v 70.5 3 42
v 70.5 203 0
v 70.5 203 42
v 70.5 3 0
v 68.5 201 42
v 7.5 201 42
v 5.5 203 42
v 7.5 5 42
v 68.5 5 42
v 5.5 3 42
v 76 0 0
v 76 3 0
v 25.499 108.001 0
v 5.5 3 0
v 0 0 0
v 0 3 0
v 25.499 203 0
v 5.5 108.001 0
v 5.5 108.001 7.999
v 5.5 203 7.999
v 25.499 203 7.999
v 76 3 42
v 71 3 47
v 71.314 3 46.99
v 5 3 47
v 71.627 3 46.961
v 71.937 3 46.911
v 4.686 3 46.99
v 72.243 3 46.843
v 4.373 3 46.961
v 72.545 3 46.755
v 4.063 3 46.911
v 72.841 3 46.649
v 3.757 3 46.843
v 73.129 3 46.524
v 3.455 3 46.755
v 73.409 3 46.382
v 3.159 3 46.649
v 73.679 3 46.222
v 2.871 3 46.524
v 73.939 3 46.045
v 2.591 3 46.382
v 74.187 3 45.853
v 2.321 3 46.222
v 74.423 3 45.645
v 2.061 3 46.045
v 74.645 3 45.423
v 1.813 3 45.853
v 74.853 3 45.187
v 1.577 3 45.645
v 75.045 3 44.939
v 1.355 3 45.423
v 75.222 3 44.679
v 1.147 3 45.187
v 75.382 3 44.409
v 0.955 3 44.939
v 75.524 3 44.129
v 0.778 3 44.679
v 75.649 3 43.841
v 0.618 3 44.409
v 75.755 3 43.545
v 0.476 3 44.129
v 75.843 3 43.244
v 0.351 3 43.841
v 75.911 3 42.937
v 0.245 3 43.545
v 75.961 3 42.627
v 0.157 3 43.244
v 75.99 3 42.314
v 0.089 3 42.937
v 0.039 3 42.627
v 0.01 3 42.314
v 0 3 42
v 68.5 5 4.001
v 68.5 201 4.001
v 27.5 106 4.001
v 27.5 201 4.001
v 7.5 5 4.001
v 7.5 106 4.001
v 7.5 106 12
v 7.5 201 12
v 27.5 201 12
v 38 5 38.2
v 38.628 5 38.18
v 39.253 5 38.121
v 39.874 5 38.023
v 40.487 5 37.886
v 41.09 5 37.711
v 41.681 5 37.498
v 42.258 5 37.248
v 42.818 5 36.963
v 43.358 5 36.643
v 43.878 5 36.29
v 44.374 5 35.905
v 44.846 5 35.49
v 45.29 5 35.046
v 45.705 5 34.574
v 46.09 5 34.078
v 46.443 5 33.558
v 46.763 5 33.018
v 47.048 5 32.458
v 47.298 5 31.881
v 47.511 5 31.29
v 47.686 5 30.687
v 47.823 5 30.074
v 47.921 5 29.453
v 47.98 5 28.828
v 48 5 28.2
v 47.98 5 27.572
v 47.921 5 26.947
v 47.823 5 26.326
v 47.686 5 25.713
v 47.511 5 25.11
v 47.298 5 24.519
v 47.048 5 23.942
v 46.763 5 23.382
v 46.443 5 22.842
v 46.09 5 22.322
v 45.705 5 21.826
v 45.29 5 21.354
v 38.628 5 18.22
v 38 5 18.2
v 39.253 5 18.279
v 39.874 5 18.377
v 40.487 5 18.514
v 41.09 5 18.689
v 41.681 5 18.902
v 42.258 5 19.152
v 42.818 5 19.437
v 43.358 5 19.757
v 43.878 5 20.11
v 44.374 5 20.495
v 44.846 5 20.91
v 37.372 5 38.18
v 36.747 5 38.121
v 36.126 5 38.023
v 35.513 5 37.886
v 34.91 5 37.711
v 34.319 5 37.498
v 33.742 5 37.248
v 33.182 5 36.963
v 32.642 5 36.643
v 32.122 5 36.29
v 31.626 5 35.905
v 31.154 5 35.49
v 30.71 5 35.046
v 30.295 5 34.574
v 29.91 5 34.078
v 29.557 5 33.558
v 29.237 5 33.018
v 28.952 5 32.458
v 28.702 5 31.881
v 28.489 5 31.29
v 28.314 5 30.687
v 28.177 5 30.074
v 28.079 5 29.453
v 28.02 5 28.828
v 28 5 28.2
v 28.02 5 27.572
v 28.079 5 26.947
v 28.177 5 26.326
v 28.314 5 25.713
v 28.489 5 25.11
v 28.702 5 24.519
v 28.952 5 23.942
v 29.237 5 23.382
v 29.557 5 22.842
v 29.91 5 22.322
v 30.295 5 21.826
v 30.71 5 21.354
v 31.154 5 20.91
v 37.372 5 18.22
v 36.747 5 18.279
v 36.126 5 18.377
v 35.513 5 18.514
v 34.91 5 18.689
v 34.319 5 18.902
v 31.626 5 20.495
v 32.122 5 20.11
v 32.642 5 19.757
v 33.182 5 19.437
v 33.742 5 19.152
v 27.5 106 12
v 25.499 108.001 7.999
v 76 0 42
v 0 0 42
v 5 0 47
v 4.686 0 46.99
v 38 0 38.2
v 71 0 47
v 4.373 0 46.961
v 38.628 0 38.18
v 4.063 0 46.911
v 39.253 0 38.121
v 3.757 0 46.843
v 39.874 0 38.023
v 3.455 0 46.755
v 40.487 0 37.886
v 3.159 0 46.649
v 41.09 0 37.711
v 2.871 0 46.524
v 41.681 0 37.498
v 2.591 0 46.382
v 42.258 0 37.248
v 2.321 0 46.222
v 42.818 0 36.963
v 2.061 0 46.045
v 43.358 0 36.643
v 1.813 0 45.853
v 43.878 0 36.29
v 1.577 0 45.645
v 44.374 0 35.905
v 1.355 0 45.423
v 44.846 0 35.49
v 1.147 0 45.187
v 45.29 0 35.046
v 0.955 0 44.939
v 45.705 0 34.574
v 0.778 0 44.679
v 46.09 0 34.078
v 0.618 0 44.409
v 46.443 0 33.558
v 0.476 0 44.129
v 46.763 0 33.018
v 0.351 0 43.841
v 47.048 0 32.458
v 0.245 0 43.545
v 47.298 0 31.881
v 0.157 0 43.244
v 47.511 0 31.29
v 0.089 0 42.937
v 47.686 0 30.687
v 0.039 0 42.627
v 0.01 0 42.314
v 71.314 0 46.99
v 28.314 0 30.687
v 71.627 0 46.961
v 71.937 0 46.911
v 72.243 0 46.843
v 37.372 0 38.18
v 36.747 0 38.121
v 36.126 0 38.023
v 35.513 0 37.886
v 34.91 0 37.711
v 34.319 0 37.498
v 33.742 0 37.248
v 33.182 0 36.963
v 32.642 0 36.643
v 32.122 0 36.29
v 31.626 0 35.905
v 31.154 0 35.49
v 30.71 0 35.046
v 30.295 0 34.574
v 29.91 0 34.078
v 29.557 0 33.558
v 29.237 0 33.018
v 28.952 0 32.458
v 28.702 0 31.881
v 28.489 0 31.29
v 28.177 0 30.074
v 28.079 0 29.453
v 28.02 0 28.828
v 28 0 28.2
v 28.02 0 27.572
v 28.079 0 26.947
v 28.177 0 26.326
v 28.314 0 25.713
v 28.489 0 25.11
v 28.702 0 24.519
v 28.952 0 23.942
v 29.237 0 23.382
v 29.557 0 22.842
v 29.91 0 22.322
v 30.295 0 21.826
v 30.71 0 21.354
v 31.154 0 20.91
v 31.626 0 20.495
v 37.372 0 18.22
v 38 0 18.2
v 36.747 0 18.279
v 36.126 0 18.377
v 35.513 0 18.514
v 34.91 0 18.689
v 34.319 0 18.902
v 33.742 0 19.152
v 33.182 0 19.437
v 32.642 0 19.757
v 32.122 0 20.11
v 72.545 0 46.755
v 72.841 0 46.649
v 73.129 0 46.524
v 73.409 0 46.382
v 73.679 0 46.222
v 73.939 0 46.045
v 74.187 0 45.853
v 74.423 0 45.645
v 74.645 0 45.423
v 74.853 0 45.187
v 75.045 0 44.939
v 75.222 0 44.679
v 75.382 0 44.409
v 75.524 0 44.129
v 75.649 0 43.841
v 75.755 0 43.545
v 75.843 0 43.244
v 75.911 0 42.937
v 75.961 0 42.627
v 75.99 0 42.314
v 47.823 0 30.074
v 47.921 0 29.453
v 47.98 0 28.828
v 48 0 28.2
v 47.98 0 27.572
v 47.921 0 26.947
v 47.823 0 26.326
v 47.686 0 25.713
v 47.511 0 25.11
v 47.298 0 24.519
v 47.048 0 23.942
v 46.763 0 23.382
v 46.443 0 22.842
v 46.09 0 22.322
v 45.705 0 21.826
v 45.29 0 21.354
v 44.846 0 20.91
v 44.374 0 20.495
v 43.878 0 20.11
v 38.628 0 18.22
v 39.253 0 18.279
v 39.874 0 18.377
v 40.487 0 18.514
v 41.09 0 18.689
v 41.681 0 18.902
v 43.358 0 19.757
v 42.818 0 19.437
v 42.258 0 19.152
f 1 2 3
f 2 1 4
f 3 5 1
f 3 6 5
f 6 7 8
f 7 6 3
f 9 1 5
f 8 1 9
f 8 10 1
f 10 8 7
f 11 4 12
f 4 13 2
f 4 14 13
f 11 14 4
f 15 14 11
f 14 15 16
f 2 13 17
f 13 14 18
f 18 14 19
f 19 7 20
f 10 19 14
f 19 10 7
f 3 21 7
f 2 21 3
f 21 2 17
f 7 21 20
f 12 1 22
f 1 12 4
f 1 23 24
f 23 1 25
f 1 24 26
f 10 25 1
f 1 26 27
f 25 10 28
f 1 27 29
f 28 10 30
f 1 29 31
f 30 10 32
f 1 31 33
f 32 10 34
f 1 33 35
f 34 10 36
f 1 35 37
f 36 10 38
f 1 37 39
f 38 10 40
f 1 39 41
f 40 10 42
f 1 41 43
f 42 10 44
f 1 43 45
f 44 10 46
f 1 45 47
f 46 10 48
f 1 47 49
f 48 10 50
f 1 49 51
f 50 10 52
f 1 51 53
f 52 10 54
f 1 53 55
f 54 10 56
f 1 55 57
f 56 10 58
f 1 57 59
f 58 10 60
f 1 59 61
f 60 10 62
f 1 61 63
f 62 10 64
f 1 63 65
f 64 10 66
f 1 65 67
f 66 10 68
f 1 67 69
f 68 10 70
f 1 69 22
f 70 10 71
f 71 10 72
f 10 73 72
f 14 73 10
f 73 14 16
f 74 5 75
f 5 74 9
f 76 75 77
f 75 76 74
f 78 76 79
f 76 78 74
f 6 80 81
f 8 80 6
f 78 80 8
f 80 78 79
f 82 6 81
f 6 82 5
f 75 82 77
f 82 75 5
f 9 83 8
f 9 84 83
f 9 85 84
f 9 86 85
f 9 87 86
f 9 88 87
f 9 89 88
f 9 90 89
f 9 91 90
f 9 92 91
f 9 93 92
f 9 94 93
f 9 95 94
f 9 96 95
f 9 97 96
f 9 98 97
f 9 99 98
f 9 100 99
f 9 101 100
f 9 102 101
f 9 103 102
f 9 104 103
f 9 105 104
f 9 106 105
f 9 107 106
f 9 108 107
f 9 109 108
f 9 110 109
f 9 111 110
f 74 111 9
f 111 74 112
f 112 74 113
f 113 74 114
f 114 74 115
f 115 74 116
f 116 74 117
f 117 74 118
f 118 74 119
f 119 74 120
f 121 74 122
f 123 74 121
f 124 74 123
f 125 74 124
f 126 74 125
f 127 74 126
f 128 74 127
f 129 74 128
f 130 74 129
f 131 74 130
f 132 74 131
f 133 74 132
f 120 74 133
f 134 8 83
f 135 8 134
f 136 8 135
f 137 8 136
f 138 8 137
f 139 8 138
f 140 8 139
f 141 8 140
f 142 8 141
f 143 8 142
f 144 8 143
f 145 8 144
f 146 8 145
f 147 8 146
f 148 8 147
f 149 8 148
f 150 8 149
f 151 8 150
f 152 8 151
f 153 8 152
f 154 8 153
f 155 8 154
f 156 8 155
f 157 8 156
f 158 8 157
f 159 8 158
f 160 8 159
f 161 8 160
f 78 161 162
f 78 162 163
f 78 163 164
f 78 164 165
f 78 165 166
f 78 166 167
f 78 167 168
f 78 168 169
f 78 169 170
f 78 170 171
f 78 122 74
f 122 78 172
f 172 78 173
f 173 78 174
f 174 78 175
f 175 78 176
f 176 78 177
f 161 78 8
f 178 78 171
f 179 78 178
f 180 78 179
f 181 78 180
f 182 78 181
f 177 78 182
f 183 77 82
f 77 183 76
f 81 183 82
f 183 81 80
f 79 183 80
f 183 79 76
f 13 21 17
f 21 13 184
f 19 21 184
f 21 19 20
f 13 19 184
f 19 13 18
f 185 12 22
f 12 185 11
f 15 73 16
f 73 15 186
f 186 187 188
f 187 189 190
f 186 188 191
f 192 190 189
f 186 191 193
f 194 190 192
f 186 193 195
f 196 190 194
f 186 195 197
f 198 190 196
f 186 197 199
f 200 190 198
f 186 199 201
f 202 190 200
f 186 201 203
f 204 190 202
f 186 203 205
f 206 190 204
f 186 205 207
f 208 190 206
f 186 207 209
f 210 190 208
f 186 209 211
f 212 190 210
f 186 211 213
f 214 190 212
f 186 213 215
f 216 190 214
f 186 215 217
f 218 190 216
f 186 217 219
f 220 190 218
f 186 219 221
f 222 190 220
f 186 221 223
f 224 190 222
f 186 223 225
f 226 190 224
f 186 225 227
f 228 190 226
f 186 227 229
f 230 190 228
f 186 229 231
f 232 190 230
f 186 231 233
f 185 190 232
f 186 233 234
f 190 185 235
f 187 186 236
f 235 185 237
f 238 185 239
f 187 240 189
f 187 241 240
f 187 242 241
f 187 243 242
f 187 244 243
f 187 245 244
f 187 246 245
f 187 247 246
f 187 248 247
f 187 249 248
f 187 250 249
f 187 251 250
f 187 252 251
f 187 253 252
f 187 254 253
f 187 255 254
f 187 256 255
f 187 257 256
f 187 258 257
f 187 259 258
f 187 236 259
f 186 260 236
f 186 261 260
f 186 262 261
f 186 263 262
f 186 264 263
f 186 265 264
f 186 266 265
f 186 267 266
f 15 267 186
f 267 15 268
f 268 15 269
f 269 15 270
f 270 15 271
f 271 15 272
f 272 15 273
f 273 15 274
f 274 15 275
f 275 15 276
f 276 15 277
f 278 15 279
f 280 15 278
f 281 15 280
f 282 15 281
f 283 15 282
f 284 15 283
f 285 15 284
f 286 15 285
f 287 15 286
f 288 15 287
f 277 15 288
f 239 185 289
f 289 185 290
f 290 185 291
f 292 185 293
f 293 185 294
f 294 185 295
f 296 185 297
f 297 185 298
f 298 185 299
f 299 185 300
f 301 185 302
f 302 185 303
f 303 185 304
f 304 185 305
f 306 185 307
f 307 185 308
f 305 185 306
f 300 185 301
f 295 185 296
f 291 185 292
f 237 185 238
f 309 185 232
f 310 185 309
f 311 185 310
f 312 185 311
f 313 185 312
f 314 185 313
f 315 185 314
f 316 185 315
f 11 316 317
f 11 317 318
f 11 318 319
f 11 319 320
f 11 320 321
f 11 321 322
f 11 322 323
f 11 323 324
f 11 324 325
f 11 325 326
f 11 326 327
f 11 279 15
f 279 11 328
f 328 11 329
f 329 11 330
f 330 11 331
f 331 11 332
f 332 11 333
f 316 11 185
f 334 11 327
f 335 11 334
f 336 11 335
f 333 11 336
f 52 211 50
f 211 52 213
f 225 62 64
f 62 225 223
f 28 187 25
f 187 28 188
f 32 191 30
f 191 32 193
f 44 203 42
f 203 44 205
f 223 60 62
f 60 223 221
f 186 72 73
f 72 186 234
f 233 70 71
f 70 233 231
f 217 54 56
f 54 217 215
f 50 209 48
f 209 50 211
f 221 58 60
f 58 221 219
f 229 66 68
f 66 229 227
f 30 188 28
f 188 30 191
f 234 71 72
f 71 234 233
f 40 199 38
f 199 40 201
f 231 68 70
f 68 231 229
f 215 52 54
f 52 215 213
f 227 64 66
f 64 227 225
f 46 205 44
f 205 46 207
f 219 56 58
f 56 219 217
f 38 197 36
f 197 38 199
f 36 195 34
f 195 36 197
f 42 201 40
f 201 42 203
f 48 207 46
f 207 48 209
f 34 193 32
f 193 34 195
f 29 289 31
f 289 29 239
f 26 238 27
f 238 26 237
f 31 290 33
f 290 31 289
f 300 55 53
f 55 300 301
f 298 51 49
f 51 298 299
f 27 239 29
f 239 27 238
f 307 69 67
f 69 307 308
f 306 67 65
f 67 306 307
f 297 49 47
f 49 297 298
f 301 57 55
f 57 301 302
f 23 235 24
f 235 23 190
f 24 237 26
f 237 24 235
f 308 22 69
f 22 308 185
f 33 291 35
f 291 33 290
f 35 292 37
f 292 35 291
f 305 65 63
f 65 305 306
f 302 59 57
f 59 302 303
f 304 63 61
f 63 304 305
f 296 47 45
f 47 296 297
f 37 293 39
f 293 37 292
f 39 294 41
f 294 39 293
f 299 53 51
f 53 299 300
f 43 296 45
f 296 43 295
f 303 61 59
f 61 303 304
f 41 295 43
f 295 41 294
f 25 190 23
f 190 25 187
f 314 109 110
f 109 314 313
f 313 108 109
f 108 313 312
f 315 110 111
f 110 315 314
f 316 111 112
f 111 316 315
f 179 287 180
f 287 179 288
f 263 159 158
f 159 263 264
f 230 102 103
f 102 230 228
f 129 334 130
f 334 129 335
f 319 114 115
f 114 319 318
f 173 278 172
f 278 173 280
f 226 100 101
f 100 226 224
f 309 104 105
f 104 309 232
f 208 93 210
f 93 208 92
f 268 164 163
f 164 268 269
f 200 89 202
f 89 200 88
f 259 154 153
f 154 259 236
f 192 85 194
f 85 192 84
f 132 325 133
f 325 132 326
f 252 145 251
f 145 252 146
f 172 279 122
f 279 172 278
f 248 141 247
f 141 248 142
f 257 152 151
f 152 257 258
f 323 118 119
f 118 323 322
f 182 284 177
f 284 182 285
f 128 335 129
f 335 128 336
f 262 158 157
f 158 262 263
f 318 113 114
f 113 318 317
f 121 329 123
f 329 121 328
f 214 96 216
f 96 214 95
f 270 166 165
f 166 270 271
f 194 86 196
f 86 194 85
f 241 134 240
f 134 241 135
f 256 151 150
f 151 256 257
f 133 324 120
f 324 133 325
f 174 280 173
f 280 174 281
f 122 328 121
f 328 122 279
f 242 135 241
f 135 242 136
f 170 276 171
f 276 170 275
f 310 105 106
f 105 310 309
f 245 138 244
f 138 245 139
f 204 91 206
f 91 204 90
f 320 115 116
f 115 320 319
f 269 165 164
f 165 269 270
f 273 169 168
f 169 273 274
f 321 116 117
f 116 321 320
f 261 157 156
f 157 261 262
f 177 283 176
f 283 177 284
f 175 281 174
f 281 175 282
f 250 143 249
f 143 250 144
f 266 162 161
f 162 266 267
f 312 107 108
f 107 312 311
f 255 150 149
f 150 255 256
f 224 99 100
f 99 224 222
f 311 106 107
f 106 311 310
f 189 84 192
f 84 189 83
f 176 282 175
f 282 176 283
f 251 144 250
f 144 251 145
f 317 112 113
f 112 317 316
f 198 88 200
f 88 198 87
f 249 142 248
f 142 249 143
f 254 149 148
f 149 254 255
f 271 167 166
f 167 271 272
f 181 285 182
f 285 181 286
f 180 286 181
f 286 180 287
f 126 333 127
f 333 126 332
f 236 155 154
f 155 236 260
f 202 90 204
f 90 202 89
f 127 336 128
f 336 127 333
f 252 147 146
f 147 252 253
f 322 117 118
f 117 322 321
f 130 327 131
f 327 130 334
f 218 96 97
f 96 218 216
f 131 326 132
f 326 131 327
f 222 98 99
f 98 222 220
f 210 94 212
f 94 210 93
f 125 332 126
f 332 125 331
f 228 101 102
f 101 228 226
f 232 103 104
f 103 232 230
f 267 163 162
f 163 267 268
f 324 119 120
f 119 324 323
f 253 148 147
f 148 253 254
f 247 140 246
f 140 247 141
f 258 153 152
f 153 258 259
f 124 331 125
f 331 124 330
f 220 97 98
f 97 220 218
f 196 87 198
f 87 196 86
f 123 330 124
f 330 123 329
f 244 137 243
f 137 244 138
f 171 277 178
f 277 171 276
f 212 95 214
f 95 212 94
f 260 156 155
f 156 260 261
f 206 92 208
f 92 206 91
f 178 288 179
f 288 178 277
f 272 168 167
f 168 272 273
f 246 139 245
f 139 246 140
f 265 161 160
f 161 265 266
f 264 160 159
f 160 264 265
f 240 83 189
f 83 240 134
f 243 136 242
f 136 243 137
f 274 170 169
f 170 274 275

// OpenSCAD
/*
  sawstop_drawer (c) by Robert Bieber

  sawstop_drawer is licensed under a Creative Commons
  Attribution-ShareAlike 4.0 International License.

  You should have received a copy of the license along with this
  work. If not, see <http://creativecommons.org/licenses/by-sa/4.0/>.
*/

SIDE = "left"; // ["left", "right"]

LENGTH = 200;
WIDTH = 65;
HEIGHT = 42;

FACE_WIDTH = 76;
FACE_HEIGHT = 47;
FACE_THICKNESS = 3;
FACE_RADIUS = 5;

WALL_THICKNESS = 2;

HUMP_WIDTH = 20;
HUMP_HEIGHT = 8;
HUMP_DEPTH = 105;

VERTICAL_DIVIDERS = [];
HORIZONTAL_DIVIDERS = [];
DIVIDER_HEIGHT = 8;

FINGER_HOLE_RADIUS = 10;

$fn = 100;

module base_box() {
	base_dimensions = [WIDTH, LENGTH, HEIGHT];
	difference() {
		cube(base_dimensions);
		translate([WALL_THICKNESS, WALL_THICKNESS, 2*WALL_THICKNESS + 1e-3])
			cube([for (n = base_dimensions) n - 2*WALL_THICKNESS]);
	}
}

module add_hump() {
	hump_dimensions = [HUMP_WIDTH, LENGTH-HUMP_DEPTH, HUMP_HEIGHT];
	difference() {
		union() {
			children();
			translate(
				[WALL_THICKNESS, HUMP_DEPTH-WALL_THICKNESS, WALL_THICKNESS*2]
			)
				cube(hump_dimensions);
		}
		translate([-1e-3, HUMP_DEPTH+1e-3, -1e-3])
			cube(hump_dimensions);
	}
}

module dividers() {
	for (x = VERTICAL_DIVIDERS) {
		translate([x + WALL_THICKNESS, 0, WALL_THICKNESS*2])
			cube([WALL_THICKNESS, LENGTH, DIVIDER_HEIGHT]);
	}

	for (y = HORIZONTAL_DIVIDERS) {
		translate([0, y+WALL_THICKNESS, WALL_THICKNESS*2])
			cube([WIDTH, WALL_THICKNESS, DIVIDER_HEIGHT]);
	}
}

module complete_box() {
	add_hump() {
		union() {
			base_box();
			dividers();
		}
	}
}

module face() {
	union() {
		cube([FACE_WIDTH, FACE_THICKNESS, FACE_HEIGHT-FACE_RADIUS]);

		translate([FACE_RADIUS, 0, FACE_HEIGHT-FACE_RADIUS]) {
			rotate([-90, 0, 0]) {
				cylinder(FACE_THICKNESS, FACE_RADIUS, FACE_RADIUS);
			}
		}
		translate([FACE_WIDTH-FACE_RADIUS, 0, FACE_HEIGHT-FACE_RADIUS]) {
			rotate([-90, 0, 0]) {
				cylinder(FACE_THICKNESS, FACE_RADIUS, FACE_RADIUS);
			}
		}

		translate([FACE_RADIUS, 0, FACE_HEIGHT-FACE_RADIUS])
			cube([FACE_WIDTH-2*FACE_RADIUS, FACE_THICKNESS, FACE_RADIUS]);
	}
}

module box_with_face() {
	union() {
		translate([(FACE_WIDTH-WIDTH)/2, FACE_THICKNESS, 0])
			complete_box();
		face();
	}
}

module with_finger_hole() {
	difference() {
		box_with_face();
		translate([FACE_WIDTH/2, -1e-3, FACE_HEIGHT*3/5]) {
			rotate([-90, 0, 0]) {
				cylinder(
					FACE_THICKNESS+WALL_THICKNESS+2e-3,
					FINGER_HOLE_RADIUS,
					FINGER_HOLE_RADIUS
				);
			}
		}
	}
}

mirror([SIDE == "right" ? 1 : 0, 0, 0]) {
	with_finger_hole();
}
